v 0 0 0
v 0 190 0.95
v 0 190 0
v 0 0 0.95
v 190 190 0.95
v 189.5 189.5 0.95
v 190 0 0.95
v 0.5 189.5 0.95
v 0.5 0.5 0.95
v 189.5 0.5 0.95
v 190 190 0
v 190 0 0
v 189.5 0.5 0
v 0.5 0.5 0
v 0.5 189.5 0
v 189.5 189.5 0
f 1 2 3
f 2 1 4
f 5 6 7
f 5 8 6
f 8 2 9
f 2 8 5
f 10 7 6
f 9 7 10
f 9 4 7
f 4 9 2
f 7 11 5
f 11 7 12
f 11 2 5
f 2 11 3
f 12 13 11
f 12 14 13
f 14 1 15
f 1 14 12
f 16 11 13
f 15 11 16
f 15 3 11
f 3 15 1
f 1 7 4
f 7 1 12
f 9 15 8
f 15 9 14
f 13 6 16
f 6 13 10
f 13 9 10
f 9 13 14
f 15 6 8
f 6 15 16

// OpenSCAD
difference(){
scale([1,1,0.005])
	cube(190);
translate([0.5,0.5,-0.10])
scale([1,1,0.3])
	cube(189);
}
